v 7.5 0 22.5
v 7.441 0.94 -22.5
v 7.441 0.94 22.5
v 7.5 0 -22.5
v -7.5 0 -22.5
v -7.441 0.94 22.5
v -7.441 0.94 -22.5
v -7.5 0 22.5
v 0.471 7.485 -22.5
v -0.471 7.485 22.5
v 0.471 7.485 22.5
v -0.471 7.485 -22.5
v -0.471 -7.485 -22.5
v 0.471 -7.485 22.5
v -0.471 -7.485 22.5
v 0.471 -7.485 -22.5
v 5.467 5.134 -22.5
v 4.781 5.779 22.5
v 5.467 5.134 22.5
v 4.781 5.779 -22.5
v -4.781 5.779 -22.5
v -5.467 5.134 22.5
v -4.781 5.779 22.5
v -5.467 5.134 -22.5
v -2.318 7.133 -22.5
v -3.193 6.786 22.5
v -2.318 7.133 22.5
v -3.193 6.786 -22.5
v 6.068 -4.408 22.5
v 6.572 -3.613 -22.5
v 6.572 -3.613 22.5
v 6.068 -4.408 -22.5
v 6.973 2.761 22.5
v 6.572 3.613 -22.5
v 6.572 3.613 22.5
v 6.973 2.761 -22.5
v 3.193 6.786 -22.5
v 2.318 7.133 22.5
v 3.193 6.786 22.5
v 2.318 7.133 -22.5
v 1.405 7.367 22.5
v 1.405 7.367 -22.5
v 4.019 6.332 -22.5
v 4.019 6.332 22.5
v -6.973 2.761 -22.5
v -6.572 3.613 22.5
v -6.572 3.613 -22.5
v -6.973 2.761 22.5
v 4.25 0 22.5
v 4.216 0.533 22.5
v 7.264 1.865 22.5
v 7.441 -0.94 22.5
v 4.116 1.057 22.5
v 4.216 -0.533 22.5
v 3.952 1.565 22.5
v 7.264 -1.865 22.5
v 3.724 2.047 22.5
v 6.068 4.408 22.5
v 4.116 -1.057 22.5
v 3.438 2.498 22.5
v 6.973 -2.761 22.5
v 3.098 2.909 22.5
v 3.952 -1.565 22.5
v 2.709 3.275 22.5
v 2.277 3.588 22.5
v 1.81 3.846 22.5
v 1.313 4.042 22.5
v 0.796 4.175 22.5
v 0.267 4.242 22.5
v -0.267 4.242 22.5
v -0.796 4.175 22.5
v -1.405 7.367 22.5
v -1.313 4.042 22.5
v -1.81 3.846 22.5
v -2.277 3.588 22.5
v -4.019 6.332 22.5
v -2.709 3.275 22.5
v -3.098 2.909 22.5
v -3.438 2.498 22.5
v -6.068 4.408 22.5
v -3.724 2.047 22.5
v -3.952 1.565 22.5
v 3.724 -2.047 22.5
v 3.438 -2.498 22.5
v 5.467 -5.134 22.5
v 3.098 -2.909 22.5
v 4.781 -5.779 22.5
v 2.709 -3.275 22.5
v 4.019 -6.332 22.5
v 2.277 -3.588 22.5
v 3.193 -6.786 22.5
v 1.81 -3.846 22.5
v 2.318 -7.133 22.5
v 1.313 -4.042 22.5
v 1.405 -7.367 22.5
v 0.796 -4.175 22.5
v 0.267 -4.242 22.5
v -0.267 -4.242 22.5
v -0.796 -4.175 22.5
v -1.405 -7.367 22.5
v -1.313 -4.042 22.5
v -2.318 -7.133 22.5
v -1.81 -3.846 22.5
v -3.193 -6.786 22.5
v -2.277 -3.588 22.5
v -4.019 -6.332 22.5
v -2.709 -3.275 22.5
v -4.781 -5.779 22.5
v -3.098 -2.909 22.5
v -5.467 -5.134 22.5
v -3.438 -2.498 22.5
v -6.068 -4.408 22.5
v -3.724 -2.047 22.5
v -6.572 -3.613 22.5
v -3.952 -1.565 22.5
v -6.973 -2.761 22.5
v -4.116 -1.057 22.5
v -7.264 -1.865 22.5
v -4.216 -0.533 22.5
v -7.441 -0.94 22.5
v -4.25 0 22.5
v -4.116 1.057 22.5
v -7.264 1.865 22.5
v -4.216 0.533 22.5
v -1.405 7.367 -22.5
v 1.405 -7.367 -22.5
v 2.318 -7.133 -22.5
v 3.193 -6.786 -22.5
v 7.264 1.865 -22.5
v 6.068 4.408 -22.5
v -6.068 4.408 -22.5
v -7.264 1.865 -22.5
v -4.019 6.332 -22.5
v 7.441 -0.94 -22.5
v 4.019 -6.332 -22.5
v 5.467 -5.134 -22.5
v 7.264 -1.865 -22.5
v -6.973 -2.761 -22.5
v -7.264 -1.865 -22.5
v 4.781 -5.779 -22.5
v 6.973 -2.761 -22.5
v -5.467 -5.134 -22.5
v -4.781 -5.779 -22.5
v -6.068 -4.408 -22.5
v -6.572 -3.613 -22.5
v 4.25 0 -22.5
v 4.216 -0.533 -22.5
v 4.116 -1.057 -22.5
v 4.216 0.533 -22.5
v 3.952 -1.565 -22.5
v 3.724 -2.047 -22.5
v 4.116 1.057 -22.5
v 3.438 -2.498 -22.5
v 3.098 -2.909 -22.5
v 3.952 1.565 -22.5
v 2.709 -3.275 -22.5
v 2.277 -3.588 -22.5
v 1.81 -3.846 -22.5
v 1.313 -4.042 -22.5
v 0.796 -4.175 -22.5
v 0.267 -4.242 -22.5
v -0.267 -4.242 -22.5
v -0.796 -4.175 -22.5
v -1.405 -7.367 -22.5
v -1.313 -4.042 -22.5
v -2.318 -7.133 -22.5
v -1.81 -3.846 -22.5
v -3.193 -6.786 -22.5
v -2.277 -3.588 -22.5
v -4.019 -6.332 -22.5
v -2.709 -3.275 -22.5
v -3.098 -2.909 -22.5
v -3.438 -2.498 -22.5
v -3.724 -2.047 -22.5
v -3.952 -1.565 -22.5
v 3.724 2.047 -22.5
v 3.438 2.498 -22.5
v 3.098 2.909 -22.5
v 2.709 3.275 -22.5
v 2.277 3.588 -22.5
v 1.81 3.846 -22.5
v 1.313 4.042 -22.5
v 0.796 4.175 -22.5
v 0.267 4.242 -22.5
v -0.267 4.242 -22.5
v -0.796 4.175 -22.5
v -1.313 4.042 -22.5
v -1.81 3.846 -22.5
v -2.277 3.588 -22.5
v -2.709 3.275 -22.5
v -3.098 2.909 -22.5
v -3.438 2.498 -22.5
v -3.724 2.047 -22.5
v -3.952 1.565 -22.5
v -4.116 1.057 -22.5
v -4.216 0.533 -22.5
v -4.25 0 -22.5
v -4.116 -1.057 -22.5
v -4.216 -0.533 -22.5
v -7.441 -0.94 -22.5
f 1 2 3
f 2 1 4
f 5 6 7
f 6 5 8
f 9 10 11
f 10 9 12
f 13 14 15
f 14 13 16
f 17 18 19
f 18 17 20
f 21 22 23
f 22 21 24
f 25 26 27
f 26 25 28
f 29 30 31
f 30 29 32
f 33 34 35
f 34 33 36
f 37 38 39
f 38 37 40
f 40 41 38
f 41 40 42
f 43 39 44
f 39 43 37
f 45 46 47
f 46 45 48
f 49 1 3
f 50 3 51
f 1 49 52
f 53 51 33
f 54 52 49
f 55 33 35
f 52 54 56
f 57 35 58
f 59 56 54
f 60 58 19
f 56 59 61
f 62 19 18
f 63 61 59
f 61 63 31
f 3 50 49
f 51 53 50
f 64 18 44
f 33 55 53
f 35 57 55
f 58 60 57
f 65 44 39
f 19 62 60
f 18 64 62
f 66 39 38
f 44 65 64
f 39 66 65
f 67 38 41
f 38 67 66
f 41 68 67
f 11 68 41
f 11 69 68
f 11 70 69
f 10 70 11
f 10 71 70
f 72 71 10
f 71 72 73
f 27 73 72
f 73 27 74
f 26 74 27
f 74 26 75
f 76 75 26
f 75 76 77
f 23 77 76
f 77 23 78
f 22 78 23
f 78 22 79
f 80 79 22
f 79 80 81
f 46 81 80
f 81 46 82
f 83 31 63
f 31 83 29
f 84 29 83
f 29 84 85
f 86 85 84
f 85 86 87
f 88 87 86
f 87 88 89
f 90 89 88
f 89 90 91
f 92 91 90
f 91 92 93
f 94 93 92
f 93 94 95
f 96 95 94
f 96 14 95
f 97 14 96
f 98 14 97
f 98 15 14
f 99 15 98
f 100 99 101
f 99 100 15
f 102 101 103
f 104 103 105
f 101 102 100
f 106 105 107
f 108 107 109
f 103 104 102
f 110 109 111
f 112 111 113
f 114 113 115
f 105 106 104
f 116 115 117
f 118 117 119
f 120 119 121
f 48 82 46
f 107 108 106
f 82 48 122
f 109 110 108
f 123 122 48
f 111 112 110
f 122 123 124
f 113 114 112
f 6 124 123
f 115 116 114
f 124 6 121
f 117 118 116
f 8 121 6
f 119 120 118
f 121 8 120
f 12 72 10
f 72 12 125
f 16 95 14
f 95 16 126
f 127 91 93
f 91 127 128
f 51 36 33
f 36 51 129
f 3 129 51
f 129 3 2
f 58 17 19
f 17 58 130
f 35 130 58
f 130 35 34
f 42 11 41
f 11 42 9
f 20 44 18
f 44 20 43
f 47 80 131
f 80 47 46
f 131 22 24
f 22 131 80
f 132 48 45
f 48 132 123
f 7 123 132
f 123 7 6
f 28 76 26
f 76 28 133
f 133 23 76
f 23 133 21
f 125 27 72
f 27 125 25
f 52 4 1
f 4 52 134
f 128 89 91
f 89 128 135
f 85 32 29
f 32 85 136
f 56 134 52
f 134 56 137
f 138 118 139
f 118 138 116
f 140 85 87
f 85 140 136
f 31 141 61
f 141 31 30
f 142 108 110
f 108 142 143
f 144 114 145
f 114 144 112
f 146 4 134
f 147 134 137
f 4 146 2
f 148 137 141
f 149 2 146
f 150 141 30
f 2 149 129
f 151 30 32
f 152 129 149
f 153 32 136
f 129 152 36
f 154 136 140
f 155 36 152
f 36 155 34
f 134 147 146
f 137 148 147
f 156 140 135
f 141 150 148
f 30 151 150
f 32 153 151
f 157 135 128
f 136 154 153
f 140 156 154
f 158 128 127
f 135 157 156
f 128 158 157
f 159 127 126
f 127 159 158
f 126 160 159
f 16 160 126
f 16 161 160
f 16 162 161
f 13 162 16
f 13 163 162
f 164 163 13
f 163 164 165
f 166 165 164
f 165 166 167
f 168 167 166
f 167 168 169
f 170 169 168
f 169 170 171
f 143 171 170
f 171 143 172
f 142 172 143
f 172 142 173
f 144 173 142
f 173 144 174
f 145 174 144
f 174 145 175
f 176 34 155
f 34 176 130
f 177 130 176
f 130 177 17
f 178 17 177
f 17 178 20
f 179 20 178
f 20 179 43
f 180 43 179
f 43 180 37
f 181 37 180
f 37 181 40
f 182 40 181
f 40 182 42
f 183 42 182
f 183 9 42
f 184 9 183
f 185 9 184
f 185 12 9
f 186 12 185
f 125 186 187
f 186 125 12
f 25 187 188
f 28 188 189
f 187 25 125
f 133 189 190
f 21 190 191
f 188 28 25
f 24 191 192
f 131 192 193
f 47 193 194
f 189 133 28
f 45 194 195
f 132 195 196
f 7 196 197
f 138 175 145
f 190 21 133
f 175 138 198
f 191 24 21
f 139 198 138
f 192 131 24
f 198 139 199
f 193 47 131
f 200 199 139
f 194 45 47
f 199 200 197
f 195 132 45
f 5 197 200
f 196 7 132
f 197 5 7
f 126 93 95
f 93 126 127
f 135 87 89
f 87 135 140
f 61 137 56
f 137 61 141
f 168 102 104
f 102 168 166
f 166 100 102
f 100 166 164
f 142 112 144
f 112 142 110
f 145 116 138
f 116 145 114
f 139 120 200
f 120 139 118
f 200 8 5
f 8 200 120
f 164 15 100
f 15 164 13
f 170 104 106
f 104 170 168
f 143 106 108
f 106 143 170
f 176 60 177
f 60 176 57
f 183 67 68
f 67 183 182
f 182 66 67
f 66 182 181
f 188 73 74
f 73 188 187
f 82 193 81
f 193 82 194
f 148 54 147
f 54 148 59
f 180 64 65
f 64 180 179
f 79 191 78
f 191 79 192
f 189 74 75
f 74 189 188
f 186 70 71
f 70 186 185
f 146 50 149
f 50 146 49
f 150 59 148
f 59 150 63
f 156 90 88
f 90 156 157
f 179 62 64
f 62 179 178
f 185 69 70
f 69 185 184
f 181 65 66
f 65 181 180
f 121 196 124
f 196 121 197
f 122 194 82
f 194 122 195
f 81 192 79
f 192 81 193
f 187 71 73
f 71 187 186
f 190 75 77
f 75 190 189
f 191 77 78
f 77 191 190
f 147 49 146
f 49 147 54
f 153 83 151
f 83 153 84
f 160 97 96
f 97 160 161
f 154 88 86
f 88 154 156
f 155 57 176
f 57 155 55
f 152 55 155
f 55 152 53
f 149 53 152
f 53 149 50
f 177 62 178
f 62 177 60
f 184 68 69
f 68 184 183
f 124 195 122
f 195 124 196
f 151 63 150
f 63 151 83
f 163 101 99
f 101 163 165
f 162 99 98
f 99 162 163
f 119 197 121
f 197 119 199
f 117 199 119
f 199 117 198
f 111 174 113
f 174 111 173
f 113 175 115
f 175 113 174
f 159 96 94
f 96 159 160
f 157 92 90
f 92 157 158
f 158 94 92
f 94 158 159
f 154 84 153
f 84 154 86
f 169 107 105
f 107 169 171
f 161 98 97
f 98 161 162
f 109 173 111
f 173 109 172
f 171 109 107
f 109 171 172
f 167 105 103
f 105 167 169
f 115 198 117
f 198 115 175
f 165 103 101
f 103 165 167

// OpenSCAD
$fn = 50;


difference() {
	union() {
		translate(v = [0, 0, -22.5000000000]) {
			cylinder(h = 45, r = 7.5000000000);
		}
	}
	union() {
		translate(v = [0, 0, -100.0000000000]) {
			cylinder(h = 200, r = 4.2500000000);
		}
	}
}
